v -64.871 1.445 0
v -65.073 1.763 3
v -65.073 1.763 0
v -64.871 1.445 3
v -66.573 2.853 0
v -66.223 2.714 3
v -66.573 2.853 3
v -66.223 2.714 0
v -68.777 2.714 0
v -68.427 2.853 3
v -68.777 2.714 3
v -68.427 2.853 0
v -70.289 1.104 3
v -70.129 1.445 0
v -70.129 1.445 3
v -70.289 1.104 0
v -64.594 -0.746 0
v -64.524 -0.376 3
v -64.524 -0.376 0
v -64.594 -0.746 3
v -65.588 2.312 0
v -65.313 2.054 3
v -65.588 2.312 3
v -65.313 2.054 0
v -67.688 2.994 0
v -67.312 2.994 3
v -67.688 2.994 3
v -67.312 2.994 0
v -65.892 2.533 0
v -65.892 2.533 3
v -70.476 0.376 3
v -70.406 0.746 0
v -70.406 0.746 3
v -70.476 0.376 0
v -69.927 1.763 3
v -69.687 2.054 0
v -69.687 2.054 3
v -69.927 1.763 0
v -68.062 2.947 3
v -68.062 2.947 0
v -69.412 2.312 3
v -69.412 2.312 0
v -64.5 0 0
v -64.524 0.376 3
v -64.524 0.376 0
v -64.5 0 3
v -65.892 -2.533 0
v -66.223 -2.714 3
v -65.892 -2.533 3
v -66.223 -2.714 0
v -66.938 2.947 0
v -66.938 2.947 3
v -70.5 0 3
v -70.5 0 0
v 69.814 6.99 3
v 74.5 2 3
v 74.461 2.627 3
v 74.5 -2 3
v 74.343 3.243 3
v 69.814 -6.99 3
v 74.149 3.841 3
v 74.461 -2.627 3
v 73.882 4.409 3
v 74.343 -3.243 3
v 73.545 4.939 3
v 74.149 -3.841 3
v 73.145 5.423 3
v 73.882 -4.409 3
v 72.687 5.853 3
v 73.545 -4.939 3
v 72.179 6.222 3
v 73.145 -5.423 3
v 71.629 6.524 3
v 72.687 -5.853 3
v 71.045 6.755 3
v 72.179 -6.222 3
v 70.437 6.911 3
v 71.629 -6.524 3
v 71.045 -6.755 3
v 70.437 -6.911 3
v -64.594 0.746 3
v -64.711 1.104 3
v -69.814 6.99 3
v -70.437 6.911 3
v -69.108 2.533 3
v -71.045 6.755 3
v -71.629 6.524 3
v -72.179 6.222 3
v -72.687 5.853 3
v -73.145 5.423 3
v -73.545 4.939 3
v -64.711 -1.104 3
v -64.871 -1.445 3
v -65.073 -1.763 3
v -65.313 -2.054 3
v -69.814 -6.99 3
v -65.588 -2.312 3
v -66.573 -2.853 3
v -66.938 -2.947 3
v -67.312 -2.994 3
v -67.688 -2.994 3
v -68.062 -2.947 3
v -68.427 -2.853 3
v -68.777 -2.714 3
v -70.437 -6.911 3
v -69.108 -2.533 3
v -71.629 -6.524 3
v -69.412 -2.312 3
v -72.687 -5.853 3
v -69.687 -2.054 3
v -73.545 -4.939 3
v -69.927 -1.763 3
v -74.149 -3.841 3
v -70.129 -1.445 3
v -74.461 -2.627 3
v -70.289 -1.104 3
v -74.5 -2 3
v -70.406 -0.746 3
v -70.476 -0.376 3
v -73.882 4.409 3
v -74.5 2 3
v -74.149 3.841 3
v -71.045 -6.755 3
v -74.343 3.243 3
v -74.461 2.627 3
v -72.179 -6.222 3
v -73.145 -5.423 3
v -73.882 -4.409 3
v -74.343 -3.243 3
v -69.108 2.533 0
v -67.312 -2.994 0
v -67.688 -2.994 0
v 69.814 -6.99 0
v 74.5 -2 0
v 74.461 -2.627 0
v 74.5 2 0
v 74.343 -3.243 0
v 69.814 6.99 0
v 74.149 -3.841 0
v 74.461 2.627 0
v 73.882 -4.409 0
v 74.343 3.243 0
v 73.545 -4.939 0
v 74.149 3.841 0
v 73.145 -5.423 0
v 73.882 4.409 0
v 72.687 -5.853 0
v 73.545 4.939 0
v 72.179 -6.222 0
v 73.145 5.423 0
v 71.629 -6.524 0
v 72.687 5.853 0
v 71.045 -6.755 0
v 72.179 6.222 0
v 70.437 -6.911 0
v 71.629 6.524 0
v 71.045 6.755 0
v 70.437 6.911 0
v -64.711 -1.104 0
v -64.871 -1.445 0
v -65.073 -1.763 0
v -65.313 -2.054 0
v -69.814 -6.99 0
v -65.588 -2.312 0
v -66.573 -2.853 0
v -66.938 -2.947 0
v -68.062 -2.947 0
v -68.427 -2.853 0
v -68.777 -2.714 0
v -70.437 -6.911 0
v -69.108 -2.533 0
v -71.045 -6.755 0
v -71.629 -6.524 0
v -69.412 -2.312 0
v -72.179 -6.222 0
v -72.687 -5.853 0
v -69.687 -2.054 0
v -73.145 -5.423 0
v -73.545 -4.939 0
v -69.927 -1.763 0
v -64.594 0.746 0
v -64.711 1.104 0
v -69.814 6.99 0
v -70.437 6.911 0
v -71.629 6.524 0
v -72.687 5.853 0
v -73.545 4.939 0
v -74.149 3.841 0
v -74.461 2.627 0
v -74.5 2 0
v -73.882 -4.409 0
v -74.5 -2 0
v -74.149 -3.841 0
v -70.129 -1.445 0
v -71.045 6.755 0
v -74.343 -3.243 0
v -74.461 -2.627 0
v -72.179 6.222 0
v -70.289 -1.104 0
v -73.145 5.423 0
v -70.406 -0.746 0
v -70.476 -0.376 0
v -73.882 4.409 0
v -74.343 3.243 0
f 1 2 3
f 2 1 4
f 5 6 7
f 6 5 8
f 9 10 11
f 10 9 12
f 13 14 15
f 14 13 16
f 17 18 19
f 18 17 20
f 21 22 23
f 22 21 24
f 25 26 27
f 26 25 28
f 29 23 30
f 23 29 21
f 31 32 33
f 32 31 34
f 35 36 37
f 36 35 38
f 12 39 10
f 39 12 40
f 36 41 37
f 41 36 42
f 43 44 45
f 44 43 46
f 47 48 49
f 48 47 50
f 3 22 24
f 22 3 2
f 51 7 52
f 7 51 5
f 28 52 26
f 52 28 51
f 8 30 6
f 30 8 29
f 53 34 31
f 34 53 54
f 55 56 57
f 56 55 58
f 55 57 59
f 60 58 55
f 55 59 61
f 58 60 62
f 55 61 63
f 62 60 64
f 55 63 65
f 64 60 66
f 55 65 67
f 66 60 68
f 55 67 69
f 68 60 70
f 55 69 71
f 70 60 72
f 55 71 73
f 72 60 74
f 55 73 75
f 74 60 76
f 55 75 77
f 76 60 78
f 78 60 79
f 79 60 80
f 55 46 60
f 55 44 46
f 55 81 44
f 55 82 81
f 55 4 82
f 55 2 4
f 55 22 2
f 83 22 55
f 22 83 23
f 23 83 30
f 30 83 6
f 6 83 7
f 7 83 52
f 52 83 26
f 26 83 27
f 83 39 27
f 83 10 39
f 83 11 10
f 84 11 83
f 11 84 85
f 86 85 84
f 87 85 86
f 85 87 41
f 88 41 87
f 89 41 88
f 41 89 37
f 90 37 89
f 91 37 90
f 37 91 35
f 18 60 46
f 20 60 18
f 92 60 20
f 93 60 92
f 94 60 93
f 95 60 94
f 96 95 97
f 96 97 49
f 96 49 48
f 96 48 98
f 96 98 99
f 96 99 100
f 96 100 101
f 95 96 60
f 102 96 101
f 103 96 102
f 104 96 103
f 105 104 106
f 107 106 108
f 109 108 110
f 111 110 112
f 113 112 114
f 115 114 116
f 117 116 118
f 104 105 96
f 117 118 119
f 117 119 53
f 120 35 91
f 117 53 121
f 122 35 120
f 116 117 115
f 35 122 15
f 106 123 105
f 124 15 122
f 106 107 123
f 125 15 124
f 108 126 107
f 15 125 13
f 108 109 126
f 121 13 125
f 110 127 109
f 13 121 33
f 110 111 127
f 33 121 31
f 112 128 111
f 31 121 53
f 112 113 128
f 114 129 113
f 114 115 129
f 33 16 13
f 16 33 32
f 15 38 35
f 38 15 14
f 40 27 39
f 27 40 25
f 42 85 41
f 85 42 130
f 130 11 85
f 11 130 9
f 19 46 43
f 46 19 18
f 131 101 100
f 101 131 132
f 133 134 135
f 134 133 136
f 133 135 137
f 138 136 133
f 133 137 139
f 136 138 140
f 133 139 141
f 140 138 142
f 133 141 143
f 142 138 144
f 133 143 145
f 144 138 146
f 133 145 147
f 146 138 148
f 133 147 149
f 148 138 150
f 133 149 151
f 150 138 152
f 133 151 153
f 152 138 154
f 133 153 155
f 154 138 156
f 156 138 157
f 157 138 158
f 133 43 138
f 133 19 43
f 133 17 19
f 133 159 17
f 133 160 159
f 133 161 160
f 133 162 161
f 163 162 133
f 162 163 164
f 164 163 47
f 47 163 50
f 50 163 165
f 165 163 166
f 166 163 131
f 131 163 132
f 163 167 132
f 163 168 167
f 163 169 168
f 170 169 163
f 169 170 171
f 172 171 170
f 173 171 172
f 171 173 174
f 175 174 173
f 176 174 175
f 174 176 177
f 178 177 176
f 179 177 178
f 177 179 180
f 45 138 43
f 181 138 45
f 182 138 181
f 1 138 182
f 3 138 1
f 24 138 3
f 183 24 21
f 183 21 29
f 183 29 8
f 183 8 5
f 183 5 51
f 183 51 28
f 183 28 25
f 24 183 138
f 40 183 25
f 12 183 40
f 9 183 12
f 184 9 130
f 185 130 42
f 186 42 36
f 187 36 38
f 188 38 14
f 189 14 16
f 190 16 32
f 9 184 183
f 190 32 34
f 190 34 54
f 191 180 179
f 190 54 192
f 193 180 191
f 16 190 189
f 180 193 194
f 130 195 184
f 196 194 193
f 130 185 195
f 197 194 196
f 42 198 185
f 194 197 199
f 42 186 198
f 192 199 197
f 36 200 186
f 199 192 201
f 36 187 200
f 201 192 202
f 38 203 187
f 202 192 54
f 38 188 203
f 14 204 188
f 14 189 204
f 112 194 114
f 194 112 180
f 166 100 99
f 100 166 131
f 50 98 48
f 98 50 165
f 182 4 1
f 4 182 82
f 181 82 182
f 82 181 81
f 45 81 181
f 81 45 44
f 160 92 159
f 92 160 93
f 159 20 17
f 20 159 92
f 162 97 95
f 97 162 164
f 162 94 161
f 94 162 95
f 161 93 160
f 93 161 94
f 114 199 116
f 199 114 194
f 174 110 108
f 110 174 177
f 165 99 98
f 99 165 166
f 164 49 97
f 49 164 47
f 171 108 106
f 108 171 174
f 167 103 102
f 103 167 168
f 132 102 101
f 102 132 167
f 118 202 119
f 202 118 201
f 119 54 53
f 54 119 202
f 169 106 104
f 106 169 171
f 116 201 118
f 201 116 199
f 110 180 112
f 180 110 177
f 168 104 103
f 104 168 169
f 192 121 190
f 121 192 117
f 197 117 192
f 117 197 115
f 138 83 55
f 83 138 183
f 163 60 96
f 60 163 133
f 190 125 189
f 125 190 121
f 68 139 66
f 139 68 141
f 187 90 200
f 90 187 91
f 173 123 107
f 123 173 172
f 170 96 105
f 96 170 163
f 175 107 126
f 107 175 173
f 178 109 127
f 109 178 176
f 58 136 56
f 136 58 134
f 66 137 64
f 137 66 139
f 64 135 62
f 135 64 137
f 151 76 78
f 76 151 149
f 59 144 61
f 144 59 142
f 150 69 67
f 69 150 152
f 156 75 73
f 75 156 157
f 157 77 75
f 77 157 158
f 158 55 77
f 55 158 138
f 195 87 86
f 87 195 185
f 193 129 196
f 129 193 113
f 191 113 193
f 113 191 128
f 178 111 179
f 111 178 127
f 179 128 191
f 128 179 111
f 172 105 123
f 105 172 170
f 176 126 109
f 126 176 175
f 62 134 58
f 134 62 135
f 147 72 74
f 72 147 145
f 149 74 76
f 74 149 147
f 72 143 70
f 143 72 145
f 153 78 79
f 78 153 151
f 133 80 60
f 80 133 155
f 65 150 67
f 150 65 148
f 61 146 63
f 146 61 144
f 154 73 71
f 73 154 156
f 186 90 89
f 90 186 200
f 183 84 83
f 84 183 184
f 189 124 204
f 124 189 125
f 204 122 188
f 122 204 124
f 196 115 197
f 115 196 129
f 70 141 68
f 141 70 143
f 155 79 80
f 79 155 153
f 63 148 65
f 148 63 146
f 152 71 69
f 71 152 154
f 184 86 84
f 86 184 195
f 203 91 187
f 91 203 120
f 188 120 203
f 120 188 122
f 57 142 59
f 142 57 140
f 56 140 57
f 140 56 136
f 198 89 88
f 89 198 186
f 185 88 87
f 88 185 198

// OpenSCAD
$fn = 50;


difference() {
	union() {
		hull() {
			translate(v = [-69.5000000000, 2.0000000000, 0]) {
				cylinder(h = 3, r = 5);
			}
			translate(v = [69.5000000000, 2.0000000000, 0]) {
				cylinder(h = 3, r = 5);
			}
			translate(v = [-69.5000000000, -2.0000000000, 0]) {
				cylinder(h = 3, r = 5);
			}
			translate(v = [69.5000000000, -2.0000000000, 0]) {
				cylinder(h = 3, r = 5);
			}
		}
	}
	union() {
		translate(v = [-67.5000000000, 0.0000000000, 0]) {
			cylinder(h = 3, r = 3.0000000000);
		}
		translate(v = [-67.5000000000, 0.0000000000, 0]) {
			cylinder(h = 3, r = 1.5000000000);
		}
		translate(v = [-67.5000000000, 0.0000000000, 0]) {
			cylinder(h = 3, r = 1.5000000000);
		}
		translate(v = [-67.5000000000, 0.0000000000, 0]) {
			cylinder(h = 3, r = 1.5000000000);
		}
	}
}
